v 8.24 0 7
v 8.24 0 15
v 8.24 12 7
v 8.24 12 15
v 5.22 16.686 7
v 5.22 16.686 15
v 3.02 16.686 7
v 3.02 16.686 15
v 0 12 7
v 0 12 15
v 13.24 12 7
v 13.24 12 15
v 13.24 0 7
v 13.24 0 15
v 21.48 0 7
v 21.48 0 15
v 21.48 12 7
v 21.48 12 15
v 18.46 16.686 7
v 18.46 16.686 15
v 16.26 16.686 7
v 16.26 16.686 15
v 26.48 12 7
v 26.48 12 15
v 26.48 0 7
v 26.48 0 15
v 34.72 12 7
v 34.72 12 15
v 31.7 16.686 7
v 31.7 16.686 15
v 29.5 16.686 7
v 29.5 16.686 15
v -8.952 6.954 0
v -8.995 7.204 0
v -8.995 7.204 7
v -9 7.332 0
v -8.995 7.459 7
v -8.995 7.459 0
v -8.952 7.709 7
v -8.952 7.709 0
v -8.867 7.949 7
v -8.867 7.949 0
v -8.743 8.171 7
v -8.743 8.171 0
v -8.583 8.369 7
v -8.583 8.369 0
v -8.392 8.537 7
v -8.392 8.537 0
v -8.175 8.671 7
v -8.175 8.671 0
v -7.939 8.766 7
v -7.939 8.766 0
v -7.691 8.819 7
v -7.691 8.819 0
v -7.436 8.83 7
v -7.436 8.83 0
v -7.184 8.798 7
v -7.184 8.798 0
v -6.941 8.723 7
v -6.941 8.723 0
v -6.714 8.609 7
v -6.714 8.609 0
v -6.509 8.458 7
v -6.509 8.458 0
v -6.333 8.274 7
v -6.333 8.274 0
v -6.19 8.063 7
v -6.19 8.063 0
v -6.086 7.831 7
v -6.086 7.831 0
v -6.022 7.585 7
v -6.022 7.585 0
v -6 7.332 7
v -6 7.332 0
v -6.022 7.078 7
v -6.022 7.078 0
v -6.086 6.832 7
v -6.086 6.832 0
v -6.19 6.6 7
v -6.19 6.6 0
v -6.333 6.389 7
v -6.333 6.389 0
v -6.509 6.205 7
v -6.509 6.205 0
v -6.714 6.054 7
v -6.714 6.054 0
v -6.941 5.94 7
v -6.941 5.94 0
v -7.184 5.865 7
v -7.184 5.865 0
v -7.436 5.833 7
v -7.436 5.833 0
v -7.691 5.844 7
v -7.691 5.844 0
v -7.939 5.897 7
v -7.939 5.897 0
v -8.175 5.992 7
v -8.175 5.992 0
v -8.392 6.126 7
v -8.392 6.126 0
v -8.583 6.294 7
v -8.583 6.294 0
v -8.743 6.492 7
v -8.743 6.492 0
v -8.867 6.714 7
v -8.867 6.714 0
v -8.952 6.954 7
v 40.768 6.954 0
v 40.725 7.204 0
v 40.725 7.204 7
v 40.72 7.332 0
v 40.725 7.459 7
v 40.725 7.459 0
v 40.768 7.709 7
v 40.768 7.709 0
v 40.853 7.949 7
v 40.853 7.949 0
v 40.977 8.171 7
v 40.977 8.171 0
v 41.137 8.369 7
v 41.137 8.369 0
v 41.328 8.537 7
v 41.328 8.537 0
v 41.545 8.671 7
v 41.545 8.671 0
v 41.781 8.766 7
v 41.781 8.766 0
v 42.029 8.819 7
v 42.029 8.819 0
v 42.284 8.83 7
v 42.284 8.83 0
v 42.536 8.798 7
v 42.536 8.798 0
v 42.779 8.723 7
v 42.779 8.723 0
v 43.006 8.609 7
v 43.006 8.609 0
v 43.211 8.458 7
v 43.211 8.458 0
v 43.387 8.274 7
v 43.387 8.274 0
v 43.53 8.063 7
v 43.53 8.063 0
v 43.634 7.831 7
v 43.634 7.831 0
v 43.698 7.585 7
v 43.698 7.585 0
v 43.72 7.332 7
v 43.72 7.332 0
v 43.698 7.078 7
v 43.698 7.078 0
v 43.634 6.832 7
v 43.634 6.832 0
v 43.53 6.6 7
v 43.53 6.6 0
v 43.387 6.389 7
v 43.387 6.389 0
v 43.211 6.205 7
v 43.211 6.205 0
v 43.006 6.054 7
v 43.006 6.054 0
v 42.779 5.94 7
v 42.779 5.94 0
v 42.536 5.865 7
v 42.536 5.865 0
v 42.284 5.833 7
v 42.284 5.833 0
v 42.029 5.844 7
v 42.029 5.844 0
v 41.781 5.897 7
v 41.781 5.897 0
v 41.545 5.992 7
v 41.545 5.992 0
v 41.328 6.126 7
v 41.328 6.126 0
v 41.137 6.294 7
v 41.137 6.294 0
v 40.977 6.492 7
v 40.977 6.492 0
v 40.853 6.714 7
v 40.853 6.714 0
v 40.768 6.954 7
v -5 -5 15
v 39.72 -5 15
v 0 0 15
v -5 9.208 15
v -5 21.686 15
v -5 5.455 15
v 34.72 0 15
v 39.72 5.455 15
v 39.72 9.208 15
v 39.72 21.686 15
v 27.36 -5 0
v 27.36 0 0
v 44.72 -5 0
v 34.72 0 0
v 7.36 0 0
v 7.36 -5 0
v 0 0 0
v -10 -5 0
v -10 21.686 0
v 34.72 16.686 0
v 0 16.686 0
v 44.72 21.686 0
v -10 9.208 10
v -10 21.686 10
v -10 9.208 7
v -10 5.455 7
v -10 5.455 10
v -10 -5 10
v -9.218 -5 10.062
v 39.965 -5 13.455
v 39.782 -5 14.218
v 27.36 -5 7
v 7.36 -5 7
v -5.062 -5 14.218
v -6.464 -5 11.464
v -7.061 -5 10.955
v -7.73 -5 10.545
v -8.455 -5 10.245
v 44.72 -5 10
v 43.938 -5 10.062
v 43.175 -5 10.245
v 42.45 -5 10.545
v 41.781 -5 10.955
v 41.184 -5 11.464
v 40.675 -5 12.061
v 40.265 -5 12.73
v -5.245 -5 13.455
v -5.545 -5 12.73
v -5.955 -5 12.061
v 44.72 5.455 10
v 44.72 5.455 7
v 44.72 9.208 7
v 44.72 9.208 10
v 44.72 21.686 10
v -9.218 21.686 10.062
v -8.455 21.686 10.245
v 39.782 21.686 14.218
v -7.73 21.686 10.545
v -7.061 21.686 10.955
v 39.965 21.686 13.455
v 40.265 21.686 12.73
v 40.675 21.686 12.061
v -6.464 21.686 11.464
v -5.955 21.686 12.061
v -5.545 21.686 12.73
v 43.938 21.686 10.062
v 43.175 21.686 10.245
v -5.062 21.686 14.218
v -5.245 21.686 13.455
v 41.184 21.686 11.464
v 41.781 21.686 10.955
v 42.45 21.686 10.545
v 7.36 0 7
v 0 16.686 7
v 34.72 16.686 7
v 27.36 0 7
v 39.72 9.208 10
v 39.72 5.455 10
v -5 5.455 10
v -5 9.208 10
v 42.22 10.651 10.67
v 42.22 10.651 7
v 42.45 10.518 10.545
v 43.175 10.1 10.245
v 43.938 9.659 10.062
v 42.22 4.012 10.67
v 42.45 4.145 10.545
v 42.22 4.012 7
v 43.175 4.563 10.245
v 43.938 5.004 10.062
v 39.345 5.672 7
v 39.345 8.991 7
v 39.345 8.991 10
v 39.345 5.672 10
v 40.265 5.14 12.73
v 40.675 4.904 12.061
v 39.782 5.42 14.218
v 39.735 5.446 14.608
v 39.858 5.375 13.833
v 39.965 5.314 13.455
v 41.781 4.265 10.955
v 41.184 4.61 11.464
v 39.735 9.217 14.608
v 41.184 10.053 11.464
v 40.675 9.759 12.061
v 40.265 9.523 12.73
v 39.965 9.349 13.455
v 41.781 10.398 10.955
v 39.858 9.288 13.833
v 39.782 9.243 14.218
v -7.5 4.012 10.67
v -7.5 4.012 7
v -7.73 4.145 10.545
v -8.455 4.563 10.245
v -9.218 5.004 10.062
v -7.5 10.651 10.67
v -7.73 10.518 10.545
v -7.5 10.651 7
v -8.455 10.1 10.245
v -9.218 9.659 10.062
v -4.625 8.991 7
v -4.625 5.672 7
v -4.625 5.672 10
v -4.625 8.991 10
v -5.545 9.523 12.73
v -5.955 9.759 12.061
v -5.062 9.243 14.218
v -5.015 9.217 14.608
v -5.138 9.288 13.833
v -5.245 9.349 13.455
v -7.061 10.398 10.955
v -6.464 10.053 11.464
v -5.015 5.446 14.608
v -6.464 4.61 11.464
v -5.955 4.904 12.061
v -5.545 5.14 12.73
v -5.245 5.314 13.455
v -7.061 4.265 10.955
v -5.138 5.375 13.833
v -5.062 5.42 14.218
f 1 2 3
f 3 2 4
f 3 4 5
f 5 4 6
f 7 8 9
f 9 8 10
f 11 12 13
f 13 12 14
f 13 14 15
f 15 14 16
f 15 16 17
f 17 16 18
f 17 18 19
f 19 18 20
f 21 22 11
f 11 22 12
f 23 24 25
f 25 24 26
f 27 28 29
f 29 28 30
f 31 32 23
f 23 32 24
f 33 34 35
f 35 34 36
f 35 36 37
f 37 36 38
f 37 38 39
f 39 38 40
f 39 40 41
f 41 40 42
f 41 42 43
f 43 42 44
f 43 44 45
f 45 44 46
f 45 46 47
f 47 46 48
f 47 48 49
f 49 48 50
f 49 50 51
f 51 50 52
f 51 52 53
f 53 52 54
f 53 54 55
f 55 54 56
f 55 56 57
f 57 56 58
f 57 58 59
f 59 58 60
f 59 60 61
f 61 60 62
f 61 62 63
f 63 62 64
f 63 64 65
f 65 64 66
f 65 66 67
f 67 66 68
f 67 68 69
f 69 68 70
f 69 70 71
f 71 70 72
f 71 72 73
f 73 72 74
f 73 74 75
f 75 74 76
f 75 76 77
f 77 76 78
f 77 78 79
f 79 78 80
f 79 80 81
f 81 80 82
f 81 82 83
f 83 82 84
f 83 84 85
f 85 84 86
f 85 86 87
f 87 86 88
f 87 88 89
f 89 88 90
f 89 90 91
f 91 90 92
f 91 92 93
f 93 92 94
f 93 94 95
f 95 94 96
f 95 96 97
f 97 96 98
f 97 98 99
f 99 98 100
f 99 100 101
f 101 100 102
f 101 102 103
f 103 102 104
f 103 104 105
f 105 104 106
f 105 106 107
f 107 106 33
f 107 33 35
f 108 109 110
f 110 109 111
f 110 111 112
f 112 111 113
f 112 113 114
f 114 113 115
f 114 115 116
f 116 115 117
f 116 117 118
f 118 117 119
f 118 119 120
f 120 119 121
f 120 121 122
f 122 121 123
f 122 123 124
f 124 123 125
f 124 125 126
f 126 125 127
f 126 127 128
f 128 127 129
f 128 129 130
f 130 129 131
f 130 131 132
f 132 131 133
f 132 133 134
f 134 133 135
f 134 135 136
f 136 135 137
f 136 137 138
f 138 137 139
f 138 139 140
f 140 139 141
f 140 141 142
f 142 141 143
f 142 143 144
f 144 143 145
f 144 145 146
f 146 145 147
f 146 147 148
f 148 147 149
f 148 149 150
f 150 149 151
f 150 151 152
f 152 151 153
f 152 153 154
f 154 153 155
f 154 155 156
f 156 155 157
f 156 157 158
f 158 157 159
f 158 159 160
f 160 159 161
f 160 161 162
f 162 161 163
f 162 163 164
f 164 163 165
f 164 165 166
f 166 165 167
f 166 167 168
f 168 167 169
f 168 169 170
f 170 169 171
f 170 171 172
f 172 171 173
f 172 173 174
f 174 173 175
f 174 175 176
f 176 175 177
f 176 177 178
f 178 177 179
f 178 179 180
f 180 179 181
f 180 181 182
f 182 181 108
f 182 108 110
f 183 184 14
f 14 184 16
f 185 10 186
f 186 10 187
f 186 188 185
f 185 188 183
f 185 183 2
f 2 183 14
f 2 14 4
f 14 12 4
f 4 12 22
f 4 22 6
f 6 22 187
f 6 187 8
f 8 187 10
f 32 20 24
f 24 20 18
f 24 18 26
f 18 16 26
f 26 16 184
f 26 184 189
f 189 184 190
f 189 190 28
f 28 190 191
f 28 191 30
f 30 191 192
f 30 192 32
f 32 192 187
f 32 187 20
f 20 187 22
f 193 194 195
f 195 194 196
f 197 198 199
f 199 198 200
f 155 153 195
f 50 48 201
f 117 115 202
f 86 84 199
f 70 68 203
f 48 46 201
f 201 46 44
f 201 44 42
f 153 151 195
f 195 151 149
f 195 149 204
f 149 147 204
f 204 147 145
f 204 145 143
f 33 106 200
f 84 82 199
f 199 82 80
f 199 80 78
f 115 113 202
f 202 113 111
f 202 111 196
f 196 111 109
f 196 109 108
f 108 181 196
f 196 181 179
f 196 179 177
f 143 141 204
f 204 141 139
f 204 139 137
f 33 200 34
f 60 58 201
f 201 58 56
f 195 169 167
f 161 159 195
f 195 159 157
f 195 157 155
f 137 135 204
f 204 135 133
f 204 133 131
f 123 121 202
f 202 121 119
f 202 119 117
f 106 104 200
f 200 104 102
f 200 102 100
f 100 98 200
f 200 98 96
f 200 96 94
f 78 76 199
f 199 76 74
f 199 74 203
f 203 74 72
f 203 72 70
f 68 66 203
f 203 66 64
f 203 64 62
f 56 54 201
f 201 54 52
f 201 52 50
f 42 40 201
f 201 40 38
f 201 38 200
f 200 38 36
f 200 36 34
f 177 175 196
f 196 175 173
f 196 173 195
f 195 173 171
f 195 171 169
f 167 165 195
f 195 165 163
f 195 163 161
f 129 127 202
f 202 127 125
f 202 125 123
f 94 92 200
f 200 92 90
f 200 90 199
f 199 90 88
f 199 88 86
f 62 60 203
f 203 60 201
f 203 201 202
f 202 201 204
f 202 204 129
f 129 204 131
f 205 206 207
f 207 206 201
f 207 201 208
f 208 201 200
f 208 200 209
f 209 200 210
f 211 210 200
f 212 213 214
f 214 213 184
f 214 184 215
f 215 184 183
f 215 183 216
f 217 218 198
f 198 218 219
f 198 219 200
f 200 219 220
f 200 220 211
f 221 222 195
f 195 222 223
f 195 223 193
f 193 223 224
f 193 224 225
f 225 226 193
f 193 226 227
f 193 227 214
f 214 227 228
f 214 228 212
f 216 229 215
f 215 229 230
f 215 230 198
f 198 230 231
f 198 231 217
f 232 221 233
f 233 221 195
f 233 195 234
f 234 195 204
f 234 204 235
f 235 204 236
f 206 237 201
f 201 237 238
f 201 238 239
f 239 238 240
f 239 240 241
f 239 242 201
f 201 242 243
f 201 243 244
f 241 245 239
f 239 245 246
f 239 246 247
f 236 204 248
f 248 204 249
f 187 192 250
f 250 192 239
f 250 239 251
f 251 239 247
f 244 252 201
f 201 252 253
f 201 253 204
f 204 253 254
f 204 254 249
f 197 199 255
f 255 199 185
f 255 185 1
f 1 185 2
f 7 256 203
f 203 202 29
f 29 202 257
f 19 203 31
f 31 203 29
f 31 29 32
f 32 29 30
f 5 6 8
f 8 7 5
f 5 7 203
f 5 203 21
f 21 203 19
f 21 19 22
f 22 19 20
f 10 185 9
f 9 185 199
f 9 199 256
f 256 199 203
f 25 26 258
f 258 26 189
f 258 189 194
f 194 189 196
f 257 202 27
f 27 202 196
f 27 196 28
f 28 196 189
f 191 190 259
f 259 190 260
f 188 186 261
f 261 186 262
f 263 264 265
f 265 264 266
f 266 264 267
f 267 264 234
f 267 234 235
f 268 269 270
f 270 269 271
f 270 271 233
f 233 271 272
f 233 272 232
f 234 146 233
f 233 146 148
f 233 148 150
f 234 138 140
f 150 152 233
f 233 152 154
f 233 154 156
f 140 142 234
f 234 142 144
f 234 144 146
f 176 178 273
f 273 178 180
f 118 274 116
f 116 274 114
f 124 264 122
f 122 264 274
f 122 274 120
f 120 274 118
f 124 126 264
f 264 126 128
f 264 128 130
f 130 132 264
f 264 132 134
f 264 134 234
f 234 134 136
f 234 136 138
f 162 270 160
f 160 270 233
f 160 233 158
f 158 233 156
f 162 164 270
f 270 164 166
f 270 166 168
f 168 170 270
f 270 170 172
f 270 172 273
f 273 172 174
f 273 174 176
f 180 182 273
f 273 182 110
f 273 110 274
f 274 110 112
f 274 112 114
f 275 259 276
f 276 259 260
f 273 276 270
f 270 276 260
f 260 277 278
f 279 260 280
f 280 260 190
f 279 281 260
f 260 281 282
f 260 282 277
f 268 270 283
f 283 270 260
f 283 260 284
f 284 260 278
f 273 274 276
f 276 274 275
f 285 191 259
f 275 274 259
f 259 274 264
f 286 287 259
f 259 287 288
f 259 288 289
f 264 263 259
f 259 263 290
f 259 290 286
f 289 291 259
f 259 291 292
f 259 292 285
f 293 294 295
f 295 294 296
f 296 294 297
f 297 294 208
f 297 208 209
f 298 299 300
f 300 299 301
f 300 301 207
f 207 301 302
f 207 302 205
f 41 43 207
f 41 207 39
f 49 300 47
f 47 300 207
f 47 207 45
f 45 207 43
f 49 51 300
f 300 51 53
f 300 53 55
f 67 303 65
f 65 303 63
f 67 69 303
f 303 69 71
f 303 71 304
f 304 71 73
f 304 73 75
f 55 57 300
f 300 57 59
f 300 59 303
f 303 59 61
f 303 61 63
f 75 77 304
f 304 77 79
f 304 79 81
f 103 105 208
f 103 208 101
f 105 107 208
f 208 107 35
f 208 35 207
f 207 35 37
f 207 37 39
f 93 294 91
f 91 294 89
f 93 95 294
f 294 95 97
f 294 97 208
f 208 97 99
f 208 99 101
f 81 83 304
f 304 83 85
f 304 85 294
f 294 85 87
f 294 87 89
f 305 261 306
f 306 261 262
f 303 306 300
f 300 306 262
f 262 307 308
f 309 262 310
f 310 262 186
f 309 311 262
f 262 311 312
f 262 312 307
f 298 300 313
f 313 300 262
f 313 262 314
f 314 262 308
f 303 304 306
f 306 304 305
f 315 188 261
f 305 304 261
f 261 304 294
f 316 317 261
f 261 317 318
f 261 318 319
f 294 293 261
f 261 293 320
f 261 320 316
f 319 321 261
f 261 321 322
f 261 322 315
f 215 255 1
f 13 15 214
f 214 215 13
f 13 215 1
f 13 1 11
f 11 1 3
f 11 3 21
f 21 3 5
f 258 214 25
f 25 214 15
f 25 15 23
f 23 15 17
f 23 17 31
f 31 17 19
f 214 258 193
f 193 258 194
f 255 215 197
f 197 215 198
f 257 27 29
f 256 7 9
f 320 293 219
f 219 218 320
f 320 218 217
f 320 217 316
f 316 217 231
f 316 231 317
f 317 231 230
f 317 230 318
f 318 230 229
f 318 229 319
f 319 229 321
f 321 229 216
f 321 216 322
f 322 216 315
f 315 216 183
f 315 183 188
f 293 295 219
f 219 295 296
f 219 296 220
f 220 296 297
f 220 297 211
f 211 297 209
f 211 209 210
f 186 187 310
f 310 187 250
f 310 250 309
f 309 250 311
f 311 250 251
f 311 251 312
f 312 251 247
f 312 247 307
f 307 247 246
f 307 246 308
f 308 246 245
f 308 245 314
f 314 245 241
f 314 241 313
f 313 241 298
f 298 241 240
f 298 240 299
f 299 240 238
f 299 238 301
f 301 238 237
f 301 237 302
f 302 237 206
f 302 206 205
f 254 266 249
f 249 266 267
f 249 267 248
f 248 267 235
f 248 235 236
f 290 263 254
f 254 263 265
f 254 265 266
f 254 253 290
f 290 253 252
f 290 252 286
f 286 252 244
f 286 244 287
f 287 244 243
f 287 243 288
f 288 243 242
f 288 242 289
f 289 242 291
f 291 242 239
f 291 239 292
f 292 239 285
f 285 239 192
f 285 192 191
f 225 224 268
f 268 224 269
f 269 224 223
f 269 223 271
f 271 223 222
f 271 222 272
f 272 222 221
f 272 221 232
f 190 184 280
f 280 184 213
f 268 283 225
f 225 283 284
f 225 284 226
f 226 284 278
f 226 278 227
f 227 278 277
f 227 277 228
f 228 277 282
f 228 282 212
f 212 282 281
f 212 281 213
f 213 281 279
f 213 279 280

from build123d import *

# Parameters (mm, degrees)
SKETCH1_W           = 54.72
SKETCH1_H           = 26.686
BOSS_EXTRUDE1_DEPTH = 15
SKETCH2_W           = 5
SKETCH2_H           = 5
CUT_EXTRUDE1_DEPTH  = 55.19428933
SKETCH3_R           = 1.5
CUT_EXTRUDE2_DEPTH  = 25
CUT_EXTRUDE3_DEPTH  = 3
CUT_EXTRUDE5_DEPTH  = 7
FILLET2_R           = 5


with BuildPart() as part:
    # Sketch1 → Boss-Extrude1 (new body)
    with BuildSketch(Plane.XY):
        with Locations((17.36, 8.343)):
            Rectangle(SKETCH1_W, SKETCH1_H)
        Polygon((0, 0), (0, 12), (3.02, 16.686), (5.22, 16.686), (8.24, 12), (8.24, 0), align=None, mode=Mode.SUBTRACT)
        Polygon((18.46, 16.686), (21.48, 12), (21.48, 0), (13.24, 0), (13.24, 12), (16.26, 16.686), align=None, mode=Mode.SUBTRACT)
        Polygon((31.7, 16.686), (34.72, 12), (34.72, 0), (26.48, 0), (26.48, 12), (29.5, 16.686), align=None, mode=Mode.SUBTRACT)
    extrude(amount=BOSS_EXTRUDE1_DEPTH)

    # Sketch2 → Cut-Extrude1 (cut, through all)
    with BuildSketch(Plane(origin=(0, -5, 0), x_dir=(-1, 0, 0), z_dir=(0, -1, 0))):
        with Locations((7.5, -12.5)):
            Rectangle(SKETCH2_W, SKETCH2_H)
        with Locations((-42.22, -12.5)):
            Rectangle(SKETCH2_W, SKETCH2_H)
    extrude(amount=-CUT_EXTRUDE1_DEPTH, mode=Mode.SUBTRACT)

    # Sketch3 → Cut-Extrude2 (cut)
    with BuildSketch(Plane.XY.offset(10)):
        with Locations((-7.5, 7.331502285)):
            Circle(SKETCH3_R)
        with Locations((42.22, 7.331502285)):
            Circle(SKETCH3_R)
    extrude(amount=-CUT_EXTRUDE2_DEPTH, mode=Mode.SUBTRACT)

    # Sketch4 → Cut-Extrude3 (cut)
    with BuildSketch(Plane.XY.offset(10)):
        Polygon((-7.5, 10.651266332), (-10.375, 8.991384309), (-10.375, 5.671620261), (-7.5, 4.011738237), (-4.625, 5.671620261), (-4.625, 8.991384309), align=None)
        Polygon((42.22, 10.651266332), (39.345, 8.991384309), (39.345, 5.671620261), (42.22, 4.011738237), (45.095, 5.671620261), (45.095, 8.991384309), align=None)
    extrude(amount=-CUT_EXTRUDE3_DEPTH, mode=Mode.SUBTRACT)

    # Sketch7 → Cut-Extrude5 (cut)
    with BuildSketch(Plane(origin=(0, 0, 0), x_dir=(-1, 0, 0), z_dir=(0, 0, -1))):
        Polygon((0, 0), (-7.36, 0), (-7.36, -5), (-27.36, -5), (-27.36, 0), (-34.72, 0), (-34.72, 16.686), (0, 16.686), align=None)
    extrude(amount=-CUT_EXTRUDE5_DEPTH, mode=Mode.SUBTRACT)

    # Fillet2
    # the kernel refuses this fillet: 5 mm, written as the material it adds along each edge
    with BuildSketch(Plane(origin=(-5, -5, 10), x_dir=(-1, 0, 0), z_dir=(0, 1, 0))) as fillet2_piece_1_section:
        with BuildLine():
            CenterArc((FILLET2_R, FILLET2_R), FILLET2_R, 180, 90)
            Line((0, FILLET2_R), (0, 0))
            Line((0, 0), (FILLET2_R, 0))
        make_face()
    fillet2_piece_1 = extrude(amount=22.95511391, mode=Mode.PRIVATE)
    fillet2_piece_1 = split(fillet2_piece_1, bisect_by=Plane(origin=(-4.358665605, 2.198087978, 11.088883398), z_dir=(-0.5, -0.8660254037844387, 0)), keep=Keep.TOP, mode=Mode.PRIVATE)
    add(fillet2_piece_1)
    with BuildSketch(Plane(origin=(-5, -17.5, 10), x_dir=(-1, 0, 0), z_dir=(0, 1, 0))) as fillet2_piece_2_section:
        with BuildLine():
            CenterArc((FILLET2_R, FILLET2_R), FILLET2_R, 180, 90)
            Line((0, FILLET2_R), (0, 0))
            Line((0, 0), (FILLET2_R, 0))
        make_face()
    fillet2_piece_2 = extrude(amount=35.45511391, mode=Mode.PRIVATE)
    fillet2_piece_2 = split(fillet2_piece_2, bisect_by=Plane(origin=(-6.083354929, 4.82963865, 11.432065422), z_dir=(0.49999999999999967, -0.8660254037844388, 0)), keep=Keep.TOP, mode=Mode.PRIVATE)
    fillet2_piece_2 = split(fillet2_piece_2, bisect_by=Plane(origin=(-6.083354929, 3.193837824, 11.432065422), z_dir=(0.5, 0.8660254037844387, 0)), keep=Keep.TOP, mode=Mode.PRIVATE)
    add(fillet2_piece_2)
    with BuildSketch(Plane(origin=(-5, -17.5, 10), x_dir=(-1, 0, 0), z_dir=(0, 1, 0))) as fillet2_piece_3_section:
        with BuildLine():
            CenterArc((FILLET2_R, FILLET2_R), FILLET2_R, 180, 90)
            Line((0, FILLET2_R), (0, 0))
            Line((0, 0), (FILLET2_R, 0))
        make_face()
    fillet2_piece_3 = extrude(amount=35.45511391, mode=Mode.PRIVATE)
    fillet2_piece_3 = split(fillet2_piece_3, bisect_by=Plane(origin=(-6.083354929, 9.83336592, 11.432065422), z_dir=(0.5000000000000001, 0.8660254037844387, 0)), keep=Keep.TOP, mode=Mode.PRIVATE)
    add(fillet2_piece_3)
    with BuildSketch(Plane(origin=(-5, -17.5, 10), x_dir=(-1, 0, 0), z_dir=(0, 1, 0))) as fillet2_piece_4_section:
        with BuildLine():
            CenterArc((FILLET2_R, FILLET2_R), FILLET2_R, 180, 90)
            Line((0, FILLET2_R), (0, 0))
            Line((0, 0), (FILLET2_R, 0))
        make_face()
    fillet2_piece_4 = extrude(amount=35.45511391, mode=Mode.PRIVATE)
    fillet2_piece_4 = split(fillet2_piece_4, bisect_by=Plane(origin=(-8.244164443, 10.221622791, 10.130784203), z_dir=(-0.5000000000000001, 0.8660254037844387, 0)), keep=Keep.TOP, mode=Mode.PRIVATE)
    add(fillet2_piece_4)
    with BuildSketch(Plane(origin=(-5, -3.292109341, 10), x_dir=(-1, 0, 0), z_dir=(0, 1, 0))) as fillet2_piece_5_section:
        with BuildLine():
            CenterArc((FILLET2_R, FILLET2_R), FILLET2_R, 180, 90)
            Line((0, FILLET2_R), (0, 0))
            Line((0, 0), (FILLET2_R, 0))
        make_face()
    fillet2_piece_5 = extrude(amount=37.478109341, mode=Mode.PRIVATE)
    fillet2_piece_5 = split(fillet2_piece_5, bisect_by=Plane(origin=(-8.244164443, 4.441381778, 10.130784203), z_dir=(-0.5, -0.8660254037844387, 0)), keep=Keep.TOP, mode=Mode.PRIVATE)
    add(fillet2_piece_5)
    with BuildSketch(Plane(origin=(-5, -3.292109341, 10), x_dir=(-1, 0, 0), z_dir=(0, 1, 0))) as fillet2_piece_6_section:
        with BuildLine():
            CenterArc((FILLET2_R, FILLET2_R), FILLET2_R, 180, 90)
            Line((0, FILLET2_R), (0, 0))
            Line((0, 0), (FILLET2_R, 0))
        make_face()
    fillet2_piece_6 = extrude(amount=37.478109341, mode=Mode.PRIVATE)
    fillet2_piece_6 = split(fillet2_piece_6, bisect_by=Plane(origin=(-6.083354929, 4.82963865, 11.432065422), z_dir=(0.49999999999999967, -0.8660254037844388, 0)), keep=Keep.TOP, mode=Mode.PRIVATE)
    add(fillet2_piece_6)
    with BuildSketch(Plane(origin=(-5, -3.292109341, 10), x_dir=(-1, 0, 0), z_dir=(0, 1, 0))) as fillet2_piece_7_section:
        with BuildLine():
            CenterArc((FILLET2_R, FILLET2_R), FILLET2_R, 180, 90)
            Line((0, FILLET2_R), (0, 0))
            Line((0, 0), (FILLET2_R, 0))
        make_face()
    fillet2_piece_7 = extrude(amount=24.978109341, mode=Mode.PRIVATE)
    fillet2_piece_7 = split(fillet2_piece_7, bisect_by=Plane(origin=(-6.083354929, 9.83336592, 11.432065422), z_dir=(0.5000000000000001, 0.8660254037844387, 0)), keep=Keep.TOP, mode=Mode.PRIVATE)
    add(fillet2_piece_7)
    with BuildSketch(Plane(origin=(-5, -3.292109341, 10), x_dir=(-1, 0, 0), z_dir=(0, 1, 0))) as fillet2_piece_8_section:
        with BuildLine():
            CenterArc((FILLET2_R, FILLET2_R), FILLET2_R, 180, 90)
            Line((0, FILLET2_R), (0, 0))
            Line((0, 0), (FILLET2_R, 0))
        make_face()
    fillet2_piece_8 = extrude(amount=37.478109341, mode=Mode.PRIVATE)
    fillet2_piece_8 = split(fillet2_piece_8, bisect_by=Plane(origin=(-8.244164443, 11.080909874, 10.130784203), z_dir=(-0.5000000000000001, -0.8660254037844387, 0)), keep=Keep.TOP, mode=Mode.PRIVATE)
    fillet2_piece_8 = split(fillet2_piece_8, bisect_by=Plane(origin=(-8.244164443, 10.221622791, 10.130784203), z_dir=(-0.5000000000000001, 0.8660254037844387, 0)), keep=Keep.TOP, mode=Mode.PRIVATE)
    add(fillet2_piece_8)
    with BuildSketch(Plane(origin=(39.72, -3.292109341, 10), x_dir=(1, 0, 0), z_dir=(0, 1, 0))) as fillet2_piece_9_section:
        with BuildLine():
            CenterArc((FILLET2_R, -FILLET2_R), FILLET2_R, 90, 90)
            Line((0, -FILLET2_R), (0, 0))
            Line((0, 0), (FILLET2_R, 0))
        make_face()
    fillet2_piece_9 = extrude(amount=37.478109341, mode=Mode.PRIVATE)
    fillet2_piece_9 = split(fillet2_piece_9, bisect_by=Plane(origin=(42.964164443, 4.441381778, 10.130784203), z_dir=(0.4999999999999993, -0.866025403784439, 0)), keep=Keep.TOP, mode=Mode.PRIVATE)
    add(fillet2_piece_9)
    with BuildSketch(Plane(origin=(39.72, -3.292109341, 10), x_dir=(1, 0, 0), z_dir=(0, 1, 0))) as fillet2_piece_10_section:
        with BuildLine():
            CenterArc((FILLET2_R, -FILLET2_R), FILLET2_R, 90, 90)
            Line((0, -FILLET2_R), (0, 0))
            Line((0, 0), (FILLET2_R, 0))
        make_face()
    fillet2_piece_10 = extrude(amount=37.478109341, mode=Mode.PRIVATE)
    fillet2_piece_10 = split(fillet2_piece_10, bisect_by=Plane(origin=(40.803354929, 4.82963865, 11.432065422), z_dir=(-0.5000000000000001, -0.8660254037844386, 0)), keep=Keep.TOP, mode=Mode.PRIVATE)
    add(fillet2_piece_10)
    with BuildSketch(Plane(origin=(39.72, -3.292109341, 10), x_dir=(1, 0, 0), z_dir=(0, 1, 0))) as fillet2_piece_11_section:
        with BuildLine():
            CenterArc((FILLET2_R, -FILLET2_R), FILLET2_R, 90, 90)
            Line((0, -FILLET2_R), (0, 0))
            Line((0, 0), (FILLET2_R, 0))
        make_face()
    fillet2_piece_11 = extrude(amount=24.978109341, mode=Mode.PRIVATE)
    fillet2_piece_11 = split(fillet2_piece_11, bisect_by=Plane(origin=(40.803354929, 9.83336592, 11.432065422), z_dir=(-0.5, 0.8660254037844387, 0)), keep=Keep.TOP, mode=Mode.PRIVATE)
    add(fillet2_piece_11)
    with BuildSketch(Plane(origin=(39.72, -3.292109341, 10), x_dir=(1, 0, 0), z_dir=(0, 1, 0))) as fillet2_piece_12_section:
        with BuildLine():
            CenterArc((FILLET2_R, -FILLET2_R), FILLET2_R, 90, 90)
            Line((0, -FILLET2_R), (0, 0))
            Line((0, 0), (FILLET2_R, 0))
        make_face()
    fillet2_piece_12 = extrude(amount=37.478109341, mode=Mode.PRIVATE)
    fillet2_piece_12 = split(fillet2_piece_12, bisect_by=Plane(origin=(42.964164443, 11.080909874, 10.130784203), z_dir=(0.5, -0.8660254037844387, 0)), keep=Keep.TOP, mode=Mode.PRIVATE)
    fillet2_piece_12 = split(fillet2_piece_12, bisect_by=Plane(origin=(42.964164443, 10.221622791, 10.130784203), z_dir=(0.4999999999999985, 0.8660254037844396, 0)), keep=Keep.TOP, mode=Mode.PRIVATE)
    add(fillet2_piece_12)
    with BuildSketch(Plane(origin=(39.72, -5, 10), x_dir=(0, 0, 1), z_dir=(0, 1, 0))) as fillet2_piece_13_section:
        with BuildLine():
            CenterArc((FILLET2_R, FILLET2_R), FILLET2_R, 180, 90)
            Line((0, FILLET2_R), (0, 0))
            Line((0, 0), (FILLET2_R, 0))
        make_face()
    fillet2_piece_13 = extrude(amount=22.95511391, mode=Mode.PRIVATE)
    fillet2_piece_13 = split(fillet2_piece_13, bisect_by=Plane(origin=(39.078665605, 2.198087978, 11.088883398), z_dir=(0.4999999999999993, -0.866025403784439, 0)), keep=Keep.TOP, mode=Mode.PRIVATE)
    add(fillet2_piece_13)
    with BuildSketch(Plane(origin=(39.72, -17.5, 10), x_dir=(0, 0, 1), z_dir=(0, 1, 0))) as fillet2_piece_14_section:
        with BuildLine():
            CenterArc((FILLET2_R, FILLET2_R), FILLET2_R, 180, 90)
            Line((0, FILLET2_R), (0, 0))
            Line((0, 0), (FILLET2_R, 0))
        make_face()
    fillet2_piece_14 = extrude(amount=35.45511391, mode=Mode.PRIVATE)
    fillet2_piece_14 = split(fillet2_piece_14, bisect_by=Plane(origin=(40.803354929, 4.82963865, 11.432065422), z_dir=(-0.5000000000000001, -0.8660254037844386, 0)), keep=Keep.TOP, mode=Mode.PRIVATE)
    fillet2_piece_14 = split(fillet2_piece_14, bisect_by=Plane(origin=(40.803354929, 3.193837824, 11.432065422), z_dir=(-0.4999999999999993, 0.866025403784439, 0)), keep=Keep.TOP, mode=Mode.PRIVATE)
    add(fillet2_piece_14)
    with BuildSketch(Plane(origin=(39.72, -17.5, 10), x_dir=(0, 0, 1), z_dir=(0, 1, 0))) as fillet2_piece_15_section:
        with BuildLine():
            CenterArc((FILLET2_R, FILLET2_R), FILLET2_R, 180, 90)
            Line((0, FILLET2_R), (0, 0))
            Line((0, 0), (FILLET2_R, 0))
        make_face()
    fillet2_piece_15 = extrude(amount=35.45511391, mode=Mode.PRIVATE)
    fillet2_piece_15 = split(fillet2_piece_15, bisect_by=Plane(origin=(42.964164443, 10.221622791, 10.130784203), z_dir=(0.4999999999999985, 0.8660254037844396, 0)), keep=Keep.TOP, mode=Mode.PRIVATE)
    add(fillet2_piece_15)
    with BuildSketch(Plane(origin=(39.72, -17.5, 10), x_dir=(0, 0, 1), z_dir=(0, 1, 0))) as fillet2_piece_16_section:
        with BuildLine():
            CenterArc((FILLET2_R, FILLET2_R), FILLET2_R, 180, 90)
            Line((0, FILLET2_R), (0, 0))
            Line((0, 0), (FILLET2_R, 0))
        make_face()
    fillet2_piece_16 = extrude(amount=35.45511391, mode=Mode.PRIVATE)
    fillet2_piece_16 = split(fillet2_piece_16, bisect_by=Plane(origin=(40.803354929, 9.833365919, 11.432065422), z_dir=(-0.5, 0.8660254037844387, 0)), keep=Keep.TOP, mode=Mode.PRIVATE)
    add(fillet2_piece_16)


solid = part.part
